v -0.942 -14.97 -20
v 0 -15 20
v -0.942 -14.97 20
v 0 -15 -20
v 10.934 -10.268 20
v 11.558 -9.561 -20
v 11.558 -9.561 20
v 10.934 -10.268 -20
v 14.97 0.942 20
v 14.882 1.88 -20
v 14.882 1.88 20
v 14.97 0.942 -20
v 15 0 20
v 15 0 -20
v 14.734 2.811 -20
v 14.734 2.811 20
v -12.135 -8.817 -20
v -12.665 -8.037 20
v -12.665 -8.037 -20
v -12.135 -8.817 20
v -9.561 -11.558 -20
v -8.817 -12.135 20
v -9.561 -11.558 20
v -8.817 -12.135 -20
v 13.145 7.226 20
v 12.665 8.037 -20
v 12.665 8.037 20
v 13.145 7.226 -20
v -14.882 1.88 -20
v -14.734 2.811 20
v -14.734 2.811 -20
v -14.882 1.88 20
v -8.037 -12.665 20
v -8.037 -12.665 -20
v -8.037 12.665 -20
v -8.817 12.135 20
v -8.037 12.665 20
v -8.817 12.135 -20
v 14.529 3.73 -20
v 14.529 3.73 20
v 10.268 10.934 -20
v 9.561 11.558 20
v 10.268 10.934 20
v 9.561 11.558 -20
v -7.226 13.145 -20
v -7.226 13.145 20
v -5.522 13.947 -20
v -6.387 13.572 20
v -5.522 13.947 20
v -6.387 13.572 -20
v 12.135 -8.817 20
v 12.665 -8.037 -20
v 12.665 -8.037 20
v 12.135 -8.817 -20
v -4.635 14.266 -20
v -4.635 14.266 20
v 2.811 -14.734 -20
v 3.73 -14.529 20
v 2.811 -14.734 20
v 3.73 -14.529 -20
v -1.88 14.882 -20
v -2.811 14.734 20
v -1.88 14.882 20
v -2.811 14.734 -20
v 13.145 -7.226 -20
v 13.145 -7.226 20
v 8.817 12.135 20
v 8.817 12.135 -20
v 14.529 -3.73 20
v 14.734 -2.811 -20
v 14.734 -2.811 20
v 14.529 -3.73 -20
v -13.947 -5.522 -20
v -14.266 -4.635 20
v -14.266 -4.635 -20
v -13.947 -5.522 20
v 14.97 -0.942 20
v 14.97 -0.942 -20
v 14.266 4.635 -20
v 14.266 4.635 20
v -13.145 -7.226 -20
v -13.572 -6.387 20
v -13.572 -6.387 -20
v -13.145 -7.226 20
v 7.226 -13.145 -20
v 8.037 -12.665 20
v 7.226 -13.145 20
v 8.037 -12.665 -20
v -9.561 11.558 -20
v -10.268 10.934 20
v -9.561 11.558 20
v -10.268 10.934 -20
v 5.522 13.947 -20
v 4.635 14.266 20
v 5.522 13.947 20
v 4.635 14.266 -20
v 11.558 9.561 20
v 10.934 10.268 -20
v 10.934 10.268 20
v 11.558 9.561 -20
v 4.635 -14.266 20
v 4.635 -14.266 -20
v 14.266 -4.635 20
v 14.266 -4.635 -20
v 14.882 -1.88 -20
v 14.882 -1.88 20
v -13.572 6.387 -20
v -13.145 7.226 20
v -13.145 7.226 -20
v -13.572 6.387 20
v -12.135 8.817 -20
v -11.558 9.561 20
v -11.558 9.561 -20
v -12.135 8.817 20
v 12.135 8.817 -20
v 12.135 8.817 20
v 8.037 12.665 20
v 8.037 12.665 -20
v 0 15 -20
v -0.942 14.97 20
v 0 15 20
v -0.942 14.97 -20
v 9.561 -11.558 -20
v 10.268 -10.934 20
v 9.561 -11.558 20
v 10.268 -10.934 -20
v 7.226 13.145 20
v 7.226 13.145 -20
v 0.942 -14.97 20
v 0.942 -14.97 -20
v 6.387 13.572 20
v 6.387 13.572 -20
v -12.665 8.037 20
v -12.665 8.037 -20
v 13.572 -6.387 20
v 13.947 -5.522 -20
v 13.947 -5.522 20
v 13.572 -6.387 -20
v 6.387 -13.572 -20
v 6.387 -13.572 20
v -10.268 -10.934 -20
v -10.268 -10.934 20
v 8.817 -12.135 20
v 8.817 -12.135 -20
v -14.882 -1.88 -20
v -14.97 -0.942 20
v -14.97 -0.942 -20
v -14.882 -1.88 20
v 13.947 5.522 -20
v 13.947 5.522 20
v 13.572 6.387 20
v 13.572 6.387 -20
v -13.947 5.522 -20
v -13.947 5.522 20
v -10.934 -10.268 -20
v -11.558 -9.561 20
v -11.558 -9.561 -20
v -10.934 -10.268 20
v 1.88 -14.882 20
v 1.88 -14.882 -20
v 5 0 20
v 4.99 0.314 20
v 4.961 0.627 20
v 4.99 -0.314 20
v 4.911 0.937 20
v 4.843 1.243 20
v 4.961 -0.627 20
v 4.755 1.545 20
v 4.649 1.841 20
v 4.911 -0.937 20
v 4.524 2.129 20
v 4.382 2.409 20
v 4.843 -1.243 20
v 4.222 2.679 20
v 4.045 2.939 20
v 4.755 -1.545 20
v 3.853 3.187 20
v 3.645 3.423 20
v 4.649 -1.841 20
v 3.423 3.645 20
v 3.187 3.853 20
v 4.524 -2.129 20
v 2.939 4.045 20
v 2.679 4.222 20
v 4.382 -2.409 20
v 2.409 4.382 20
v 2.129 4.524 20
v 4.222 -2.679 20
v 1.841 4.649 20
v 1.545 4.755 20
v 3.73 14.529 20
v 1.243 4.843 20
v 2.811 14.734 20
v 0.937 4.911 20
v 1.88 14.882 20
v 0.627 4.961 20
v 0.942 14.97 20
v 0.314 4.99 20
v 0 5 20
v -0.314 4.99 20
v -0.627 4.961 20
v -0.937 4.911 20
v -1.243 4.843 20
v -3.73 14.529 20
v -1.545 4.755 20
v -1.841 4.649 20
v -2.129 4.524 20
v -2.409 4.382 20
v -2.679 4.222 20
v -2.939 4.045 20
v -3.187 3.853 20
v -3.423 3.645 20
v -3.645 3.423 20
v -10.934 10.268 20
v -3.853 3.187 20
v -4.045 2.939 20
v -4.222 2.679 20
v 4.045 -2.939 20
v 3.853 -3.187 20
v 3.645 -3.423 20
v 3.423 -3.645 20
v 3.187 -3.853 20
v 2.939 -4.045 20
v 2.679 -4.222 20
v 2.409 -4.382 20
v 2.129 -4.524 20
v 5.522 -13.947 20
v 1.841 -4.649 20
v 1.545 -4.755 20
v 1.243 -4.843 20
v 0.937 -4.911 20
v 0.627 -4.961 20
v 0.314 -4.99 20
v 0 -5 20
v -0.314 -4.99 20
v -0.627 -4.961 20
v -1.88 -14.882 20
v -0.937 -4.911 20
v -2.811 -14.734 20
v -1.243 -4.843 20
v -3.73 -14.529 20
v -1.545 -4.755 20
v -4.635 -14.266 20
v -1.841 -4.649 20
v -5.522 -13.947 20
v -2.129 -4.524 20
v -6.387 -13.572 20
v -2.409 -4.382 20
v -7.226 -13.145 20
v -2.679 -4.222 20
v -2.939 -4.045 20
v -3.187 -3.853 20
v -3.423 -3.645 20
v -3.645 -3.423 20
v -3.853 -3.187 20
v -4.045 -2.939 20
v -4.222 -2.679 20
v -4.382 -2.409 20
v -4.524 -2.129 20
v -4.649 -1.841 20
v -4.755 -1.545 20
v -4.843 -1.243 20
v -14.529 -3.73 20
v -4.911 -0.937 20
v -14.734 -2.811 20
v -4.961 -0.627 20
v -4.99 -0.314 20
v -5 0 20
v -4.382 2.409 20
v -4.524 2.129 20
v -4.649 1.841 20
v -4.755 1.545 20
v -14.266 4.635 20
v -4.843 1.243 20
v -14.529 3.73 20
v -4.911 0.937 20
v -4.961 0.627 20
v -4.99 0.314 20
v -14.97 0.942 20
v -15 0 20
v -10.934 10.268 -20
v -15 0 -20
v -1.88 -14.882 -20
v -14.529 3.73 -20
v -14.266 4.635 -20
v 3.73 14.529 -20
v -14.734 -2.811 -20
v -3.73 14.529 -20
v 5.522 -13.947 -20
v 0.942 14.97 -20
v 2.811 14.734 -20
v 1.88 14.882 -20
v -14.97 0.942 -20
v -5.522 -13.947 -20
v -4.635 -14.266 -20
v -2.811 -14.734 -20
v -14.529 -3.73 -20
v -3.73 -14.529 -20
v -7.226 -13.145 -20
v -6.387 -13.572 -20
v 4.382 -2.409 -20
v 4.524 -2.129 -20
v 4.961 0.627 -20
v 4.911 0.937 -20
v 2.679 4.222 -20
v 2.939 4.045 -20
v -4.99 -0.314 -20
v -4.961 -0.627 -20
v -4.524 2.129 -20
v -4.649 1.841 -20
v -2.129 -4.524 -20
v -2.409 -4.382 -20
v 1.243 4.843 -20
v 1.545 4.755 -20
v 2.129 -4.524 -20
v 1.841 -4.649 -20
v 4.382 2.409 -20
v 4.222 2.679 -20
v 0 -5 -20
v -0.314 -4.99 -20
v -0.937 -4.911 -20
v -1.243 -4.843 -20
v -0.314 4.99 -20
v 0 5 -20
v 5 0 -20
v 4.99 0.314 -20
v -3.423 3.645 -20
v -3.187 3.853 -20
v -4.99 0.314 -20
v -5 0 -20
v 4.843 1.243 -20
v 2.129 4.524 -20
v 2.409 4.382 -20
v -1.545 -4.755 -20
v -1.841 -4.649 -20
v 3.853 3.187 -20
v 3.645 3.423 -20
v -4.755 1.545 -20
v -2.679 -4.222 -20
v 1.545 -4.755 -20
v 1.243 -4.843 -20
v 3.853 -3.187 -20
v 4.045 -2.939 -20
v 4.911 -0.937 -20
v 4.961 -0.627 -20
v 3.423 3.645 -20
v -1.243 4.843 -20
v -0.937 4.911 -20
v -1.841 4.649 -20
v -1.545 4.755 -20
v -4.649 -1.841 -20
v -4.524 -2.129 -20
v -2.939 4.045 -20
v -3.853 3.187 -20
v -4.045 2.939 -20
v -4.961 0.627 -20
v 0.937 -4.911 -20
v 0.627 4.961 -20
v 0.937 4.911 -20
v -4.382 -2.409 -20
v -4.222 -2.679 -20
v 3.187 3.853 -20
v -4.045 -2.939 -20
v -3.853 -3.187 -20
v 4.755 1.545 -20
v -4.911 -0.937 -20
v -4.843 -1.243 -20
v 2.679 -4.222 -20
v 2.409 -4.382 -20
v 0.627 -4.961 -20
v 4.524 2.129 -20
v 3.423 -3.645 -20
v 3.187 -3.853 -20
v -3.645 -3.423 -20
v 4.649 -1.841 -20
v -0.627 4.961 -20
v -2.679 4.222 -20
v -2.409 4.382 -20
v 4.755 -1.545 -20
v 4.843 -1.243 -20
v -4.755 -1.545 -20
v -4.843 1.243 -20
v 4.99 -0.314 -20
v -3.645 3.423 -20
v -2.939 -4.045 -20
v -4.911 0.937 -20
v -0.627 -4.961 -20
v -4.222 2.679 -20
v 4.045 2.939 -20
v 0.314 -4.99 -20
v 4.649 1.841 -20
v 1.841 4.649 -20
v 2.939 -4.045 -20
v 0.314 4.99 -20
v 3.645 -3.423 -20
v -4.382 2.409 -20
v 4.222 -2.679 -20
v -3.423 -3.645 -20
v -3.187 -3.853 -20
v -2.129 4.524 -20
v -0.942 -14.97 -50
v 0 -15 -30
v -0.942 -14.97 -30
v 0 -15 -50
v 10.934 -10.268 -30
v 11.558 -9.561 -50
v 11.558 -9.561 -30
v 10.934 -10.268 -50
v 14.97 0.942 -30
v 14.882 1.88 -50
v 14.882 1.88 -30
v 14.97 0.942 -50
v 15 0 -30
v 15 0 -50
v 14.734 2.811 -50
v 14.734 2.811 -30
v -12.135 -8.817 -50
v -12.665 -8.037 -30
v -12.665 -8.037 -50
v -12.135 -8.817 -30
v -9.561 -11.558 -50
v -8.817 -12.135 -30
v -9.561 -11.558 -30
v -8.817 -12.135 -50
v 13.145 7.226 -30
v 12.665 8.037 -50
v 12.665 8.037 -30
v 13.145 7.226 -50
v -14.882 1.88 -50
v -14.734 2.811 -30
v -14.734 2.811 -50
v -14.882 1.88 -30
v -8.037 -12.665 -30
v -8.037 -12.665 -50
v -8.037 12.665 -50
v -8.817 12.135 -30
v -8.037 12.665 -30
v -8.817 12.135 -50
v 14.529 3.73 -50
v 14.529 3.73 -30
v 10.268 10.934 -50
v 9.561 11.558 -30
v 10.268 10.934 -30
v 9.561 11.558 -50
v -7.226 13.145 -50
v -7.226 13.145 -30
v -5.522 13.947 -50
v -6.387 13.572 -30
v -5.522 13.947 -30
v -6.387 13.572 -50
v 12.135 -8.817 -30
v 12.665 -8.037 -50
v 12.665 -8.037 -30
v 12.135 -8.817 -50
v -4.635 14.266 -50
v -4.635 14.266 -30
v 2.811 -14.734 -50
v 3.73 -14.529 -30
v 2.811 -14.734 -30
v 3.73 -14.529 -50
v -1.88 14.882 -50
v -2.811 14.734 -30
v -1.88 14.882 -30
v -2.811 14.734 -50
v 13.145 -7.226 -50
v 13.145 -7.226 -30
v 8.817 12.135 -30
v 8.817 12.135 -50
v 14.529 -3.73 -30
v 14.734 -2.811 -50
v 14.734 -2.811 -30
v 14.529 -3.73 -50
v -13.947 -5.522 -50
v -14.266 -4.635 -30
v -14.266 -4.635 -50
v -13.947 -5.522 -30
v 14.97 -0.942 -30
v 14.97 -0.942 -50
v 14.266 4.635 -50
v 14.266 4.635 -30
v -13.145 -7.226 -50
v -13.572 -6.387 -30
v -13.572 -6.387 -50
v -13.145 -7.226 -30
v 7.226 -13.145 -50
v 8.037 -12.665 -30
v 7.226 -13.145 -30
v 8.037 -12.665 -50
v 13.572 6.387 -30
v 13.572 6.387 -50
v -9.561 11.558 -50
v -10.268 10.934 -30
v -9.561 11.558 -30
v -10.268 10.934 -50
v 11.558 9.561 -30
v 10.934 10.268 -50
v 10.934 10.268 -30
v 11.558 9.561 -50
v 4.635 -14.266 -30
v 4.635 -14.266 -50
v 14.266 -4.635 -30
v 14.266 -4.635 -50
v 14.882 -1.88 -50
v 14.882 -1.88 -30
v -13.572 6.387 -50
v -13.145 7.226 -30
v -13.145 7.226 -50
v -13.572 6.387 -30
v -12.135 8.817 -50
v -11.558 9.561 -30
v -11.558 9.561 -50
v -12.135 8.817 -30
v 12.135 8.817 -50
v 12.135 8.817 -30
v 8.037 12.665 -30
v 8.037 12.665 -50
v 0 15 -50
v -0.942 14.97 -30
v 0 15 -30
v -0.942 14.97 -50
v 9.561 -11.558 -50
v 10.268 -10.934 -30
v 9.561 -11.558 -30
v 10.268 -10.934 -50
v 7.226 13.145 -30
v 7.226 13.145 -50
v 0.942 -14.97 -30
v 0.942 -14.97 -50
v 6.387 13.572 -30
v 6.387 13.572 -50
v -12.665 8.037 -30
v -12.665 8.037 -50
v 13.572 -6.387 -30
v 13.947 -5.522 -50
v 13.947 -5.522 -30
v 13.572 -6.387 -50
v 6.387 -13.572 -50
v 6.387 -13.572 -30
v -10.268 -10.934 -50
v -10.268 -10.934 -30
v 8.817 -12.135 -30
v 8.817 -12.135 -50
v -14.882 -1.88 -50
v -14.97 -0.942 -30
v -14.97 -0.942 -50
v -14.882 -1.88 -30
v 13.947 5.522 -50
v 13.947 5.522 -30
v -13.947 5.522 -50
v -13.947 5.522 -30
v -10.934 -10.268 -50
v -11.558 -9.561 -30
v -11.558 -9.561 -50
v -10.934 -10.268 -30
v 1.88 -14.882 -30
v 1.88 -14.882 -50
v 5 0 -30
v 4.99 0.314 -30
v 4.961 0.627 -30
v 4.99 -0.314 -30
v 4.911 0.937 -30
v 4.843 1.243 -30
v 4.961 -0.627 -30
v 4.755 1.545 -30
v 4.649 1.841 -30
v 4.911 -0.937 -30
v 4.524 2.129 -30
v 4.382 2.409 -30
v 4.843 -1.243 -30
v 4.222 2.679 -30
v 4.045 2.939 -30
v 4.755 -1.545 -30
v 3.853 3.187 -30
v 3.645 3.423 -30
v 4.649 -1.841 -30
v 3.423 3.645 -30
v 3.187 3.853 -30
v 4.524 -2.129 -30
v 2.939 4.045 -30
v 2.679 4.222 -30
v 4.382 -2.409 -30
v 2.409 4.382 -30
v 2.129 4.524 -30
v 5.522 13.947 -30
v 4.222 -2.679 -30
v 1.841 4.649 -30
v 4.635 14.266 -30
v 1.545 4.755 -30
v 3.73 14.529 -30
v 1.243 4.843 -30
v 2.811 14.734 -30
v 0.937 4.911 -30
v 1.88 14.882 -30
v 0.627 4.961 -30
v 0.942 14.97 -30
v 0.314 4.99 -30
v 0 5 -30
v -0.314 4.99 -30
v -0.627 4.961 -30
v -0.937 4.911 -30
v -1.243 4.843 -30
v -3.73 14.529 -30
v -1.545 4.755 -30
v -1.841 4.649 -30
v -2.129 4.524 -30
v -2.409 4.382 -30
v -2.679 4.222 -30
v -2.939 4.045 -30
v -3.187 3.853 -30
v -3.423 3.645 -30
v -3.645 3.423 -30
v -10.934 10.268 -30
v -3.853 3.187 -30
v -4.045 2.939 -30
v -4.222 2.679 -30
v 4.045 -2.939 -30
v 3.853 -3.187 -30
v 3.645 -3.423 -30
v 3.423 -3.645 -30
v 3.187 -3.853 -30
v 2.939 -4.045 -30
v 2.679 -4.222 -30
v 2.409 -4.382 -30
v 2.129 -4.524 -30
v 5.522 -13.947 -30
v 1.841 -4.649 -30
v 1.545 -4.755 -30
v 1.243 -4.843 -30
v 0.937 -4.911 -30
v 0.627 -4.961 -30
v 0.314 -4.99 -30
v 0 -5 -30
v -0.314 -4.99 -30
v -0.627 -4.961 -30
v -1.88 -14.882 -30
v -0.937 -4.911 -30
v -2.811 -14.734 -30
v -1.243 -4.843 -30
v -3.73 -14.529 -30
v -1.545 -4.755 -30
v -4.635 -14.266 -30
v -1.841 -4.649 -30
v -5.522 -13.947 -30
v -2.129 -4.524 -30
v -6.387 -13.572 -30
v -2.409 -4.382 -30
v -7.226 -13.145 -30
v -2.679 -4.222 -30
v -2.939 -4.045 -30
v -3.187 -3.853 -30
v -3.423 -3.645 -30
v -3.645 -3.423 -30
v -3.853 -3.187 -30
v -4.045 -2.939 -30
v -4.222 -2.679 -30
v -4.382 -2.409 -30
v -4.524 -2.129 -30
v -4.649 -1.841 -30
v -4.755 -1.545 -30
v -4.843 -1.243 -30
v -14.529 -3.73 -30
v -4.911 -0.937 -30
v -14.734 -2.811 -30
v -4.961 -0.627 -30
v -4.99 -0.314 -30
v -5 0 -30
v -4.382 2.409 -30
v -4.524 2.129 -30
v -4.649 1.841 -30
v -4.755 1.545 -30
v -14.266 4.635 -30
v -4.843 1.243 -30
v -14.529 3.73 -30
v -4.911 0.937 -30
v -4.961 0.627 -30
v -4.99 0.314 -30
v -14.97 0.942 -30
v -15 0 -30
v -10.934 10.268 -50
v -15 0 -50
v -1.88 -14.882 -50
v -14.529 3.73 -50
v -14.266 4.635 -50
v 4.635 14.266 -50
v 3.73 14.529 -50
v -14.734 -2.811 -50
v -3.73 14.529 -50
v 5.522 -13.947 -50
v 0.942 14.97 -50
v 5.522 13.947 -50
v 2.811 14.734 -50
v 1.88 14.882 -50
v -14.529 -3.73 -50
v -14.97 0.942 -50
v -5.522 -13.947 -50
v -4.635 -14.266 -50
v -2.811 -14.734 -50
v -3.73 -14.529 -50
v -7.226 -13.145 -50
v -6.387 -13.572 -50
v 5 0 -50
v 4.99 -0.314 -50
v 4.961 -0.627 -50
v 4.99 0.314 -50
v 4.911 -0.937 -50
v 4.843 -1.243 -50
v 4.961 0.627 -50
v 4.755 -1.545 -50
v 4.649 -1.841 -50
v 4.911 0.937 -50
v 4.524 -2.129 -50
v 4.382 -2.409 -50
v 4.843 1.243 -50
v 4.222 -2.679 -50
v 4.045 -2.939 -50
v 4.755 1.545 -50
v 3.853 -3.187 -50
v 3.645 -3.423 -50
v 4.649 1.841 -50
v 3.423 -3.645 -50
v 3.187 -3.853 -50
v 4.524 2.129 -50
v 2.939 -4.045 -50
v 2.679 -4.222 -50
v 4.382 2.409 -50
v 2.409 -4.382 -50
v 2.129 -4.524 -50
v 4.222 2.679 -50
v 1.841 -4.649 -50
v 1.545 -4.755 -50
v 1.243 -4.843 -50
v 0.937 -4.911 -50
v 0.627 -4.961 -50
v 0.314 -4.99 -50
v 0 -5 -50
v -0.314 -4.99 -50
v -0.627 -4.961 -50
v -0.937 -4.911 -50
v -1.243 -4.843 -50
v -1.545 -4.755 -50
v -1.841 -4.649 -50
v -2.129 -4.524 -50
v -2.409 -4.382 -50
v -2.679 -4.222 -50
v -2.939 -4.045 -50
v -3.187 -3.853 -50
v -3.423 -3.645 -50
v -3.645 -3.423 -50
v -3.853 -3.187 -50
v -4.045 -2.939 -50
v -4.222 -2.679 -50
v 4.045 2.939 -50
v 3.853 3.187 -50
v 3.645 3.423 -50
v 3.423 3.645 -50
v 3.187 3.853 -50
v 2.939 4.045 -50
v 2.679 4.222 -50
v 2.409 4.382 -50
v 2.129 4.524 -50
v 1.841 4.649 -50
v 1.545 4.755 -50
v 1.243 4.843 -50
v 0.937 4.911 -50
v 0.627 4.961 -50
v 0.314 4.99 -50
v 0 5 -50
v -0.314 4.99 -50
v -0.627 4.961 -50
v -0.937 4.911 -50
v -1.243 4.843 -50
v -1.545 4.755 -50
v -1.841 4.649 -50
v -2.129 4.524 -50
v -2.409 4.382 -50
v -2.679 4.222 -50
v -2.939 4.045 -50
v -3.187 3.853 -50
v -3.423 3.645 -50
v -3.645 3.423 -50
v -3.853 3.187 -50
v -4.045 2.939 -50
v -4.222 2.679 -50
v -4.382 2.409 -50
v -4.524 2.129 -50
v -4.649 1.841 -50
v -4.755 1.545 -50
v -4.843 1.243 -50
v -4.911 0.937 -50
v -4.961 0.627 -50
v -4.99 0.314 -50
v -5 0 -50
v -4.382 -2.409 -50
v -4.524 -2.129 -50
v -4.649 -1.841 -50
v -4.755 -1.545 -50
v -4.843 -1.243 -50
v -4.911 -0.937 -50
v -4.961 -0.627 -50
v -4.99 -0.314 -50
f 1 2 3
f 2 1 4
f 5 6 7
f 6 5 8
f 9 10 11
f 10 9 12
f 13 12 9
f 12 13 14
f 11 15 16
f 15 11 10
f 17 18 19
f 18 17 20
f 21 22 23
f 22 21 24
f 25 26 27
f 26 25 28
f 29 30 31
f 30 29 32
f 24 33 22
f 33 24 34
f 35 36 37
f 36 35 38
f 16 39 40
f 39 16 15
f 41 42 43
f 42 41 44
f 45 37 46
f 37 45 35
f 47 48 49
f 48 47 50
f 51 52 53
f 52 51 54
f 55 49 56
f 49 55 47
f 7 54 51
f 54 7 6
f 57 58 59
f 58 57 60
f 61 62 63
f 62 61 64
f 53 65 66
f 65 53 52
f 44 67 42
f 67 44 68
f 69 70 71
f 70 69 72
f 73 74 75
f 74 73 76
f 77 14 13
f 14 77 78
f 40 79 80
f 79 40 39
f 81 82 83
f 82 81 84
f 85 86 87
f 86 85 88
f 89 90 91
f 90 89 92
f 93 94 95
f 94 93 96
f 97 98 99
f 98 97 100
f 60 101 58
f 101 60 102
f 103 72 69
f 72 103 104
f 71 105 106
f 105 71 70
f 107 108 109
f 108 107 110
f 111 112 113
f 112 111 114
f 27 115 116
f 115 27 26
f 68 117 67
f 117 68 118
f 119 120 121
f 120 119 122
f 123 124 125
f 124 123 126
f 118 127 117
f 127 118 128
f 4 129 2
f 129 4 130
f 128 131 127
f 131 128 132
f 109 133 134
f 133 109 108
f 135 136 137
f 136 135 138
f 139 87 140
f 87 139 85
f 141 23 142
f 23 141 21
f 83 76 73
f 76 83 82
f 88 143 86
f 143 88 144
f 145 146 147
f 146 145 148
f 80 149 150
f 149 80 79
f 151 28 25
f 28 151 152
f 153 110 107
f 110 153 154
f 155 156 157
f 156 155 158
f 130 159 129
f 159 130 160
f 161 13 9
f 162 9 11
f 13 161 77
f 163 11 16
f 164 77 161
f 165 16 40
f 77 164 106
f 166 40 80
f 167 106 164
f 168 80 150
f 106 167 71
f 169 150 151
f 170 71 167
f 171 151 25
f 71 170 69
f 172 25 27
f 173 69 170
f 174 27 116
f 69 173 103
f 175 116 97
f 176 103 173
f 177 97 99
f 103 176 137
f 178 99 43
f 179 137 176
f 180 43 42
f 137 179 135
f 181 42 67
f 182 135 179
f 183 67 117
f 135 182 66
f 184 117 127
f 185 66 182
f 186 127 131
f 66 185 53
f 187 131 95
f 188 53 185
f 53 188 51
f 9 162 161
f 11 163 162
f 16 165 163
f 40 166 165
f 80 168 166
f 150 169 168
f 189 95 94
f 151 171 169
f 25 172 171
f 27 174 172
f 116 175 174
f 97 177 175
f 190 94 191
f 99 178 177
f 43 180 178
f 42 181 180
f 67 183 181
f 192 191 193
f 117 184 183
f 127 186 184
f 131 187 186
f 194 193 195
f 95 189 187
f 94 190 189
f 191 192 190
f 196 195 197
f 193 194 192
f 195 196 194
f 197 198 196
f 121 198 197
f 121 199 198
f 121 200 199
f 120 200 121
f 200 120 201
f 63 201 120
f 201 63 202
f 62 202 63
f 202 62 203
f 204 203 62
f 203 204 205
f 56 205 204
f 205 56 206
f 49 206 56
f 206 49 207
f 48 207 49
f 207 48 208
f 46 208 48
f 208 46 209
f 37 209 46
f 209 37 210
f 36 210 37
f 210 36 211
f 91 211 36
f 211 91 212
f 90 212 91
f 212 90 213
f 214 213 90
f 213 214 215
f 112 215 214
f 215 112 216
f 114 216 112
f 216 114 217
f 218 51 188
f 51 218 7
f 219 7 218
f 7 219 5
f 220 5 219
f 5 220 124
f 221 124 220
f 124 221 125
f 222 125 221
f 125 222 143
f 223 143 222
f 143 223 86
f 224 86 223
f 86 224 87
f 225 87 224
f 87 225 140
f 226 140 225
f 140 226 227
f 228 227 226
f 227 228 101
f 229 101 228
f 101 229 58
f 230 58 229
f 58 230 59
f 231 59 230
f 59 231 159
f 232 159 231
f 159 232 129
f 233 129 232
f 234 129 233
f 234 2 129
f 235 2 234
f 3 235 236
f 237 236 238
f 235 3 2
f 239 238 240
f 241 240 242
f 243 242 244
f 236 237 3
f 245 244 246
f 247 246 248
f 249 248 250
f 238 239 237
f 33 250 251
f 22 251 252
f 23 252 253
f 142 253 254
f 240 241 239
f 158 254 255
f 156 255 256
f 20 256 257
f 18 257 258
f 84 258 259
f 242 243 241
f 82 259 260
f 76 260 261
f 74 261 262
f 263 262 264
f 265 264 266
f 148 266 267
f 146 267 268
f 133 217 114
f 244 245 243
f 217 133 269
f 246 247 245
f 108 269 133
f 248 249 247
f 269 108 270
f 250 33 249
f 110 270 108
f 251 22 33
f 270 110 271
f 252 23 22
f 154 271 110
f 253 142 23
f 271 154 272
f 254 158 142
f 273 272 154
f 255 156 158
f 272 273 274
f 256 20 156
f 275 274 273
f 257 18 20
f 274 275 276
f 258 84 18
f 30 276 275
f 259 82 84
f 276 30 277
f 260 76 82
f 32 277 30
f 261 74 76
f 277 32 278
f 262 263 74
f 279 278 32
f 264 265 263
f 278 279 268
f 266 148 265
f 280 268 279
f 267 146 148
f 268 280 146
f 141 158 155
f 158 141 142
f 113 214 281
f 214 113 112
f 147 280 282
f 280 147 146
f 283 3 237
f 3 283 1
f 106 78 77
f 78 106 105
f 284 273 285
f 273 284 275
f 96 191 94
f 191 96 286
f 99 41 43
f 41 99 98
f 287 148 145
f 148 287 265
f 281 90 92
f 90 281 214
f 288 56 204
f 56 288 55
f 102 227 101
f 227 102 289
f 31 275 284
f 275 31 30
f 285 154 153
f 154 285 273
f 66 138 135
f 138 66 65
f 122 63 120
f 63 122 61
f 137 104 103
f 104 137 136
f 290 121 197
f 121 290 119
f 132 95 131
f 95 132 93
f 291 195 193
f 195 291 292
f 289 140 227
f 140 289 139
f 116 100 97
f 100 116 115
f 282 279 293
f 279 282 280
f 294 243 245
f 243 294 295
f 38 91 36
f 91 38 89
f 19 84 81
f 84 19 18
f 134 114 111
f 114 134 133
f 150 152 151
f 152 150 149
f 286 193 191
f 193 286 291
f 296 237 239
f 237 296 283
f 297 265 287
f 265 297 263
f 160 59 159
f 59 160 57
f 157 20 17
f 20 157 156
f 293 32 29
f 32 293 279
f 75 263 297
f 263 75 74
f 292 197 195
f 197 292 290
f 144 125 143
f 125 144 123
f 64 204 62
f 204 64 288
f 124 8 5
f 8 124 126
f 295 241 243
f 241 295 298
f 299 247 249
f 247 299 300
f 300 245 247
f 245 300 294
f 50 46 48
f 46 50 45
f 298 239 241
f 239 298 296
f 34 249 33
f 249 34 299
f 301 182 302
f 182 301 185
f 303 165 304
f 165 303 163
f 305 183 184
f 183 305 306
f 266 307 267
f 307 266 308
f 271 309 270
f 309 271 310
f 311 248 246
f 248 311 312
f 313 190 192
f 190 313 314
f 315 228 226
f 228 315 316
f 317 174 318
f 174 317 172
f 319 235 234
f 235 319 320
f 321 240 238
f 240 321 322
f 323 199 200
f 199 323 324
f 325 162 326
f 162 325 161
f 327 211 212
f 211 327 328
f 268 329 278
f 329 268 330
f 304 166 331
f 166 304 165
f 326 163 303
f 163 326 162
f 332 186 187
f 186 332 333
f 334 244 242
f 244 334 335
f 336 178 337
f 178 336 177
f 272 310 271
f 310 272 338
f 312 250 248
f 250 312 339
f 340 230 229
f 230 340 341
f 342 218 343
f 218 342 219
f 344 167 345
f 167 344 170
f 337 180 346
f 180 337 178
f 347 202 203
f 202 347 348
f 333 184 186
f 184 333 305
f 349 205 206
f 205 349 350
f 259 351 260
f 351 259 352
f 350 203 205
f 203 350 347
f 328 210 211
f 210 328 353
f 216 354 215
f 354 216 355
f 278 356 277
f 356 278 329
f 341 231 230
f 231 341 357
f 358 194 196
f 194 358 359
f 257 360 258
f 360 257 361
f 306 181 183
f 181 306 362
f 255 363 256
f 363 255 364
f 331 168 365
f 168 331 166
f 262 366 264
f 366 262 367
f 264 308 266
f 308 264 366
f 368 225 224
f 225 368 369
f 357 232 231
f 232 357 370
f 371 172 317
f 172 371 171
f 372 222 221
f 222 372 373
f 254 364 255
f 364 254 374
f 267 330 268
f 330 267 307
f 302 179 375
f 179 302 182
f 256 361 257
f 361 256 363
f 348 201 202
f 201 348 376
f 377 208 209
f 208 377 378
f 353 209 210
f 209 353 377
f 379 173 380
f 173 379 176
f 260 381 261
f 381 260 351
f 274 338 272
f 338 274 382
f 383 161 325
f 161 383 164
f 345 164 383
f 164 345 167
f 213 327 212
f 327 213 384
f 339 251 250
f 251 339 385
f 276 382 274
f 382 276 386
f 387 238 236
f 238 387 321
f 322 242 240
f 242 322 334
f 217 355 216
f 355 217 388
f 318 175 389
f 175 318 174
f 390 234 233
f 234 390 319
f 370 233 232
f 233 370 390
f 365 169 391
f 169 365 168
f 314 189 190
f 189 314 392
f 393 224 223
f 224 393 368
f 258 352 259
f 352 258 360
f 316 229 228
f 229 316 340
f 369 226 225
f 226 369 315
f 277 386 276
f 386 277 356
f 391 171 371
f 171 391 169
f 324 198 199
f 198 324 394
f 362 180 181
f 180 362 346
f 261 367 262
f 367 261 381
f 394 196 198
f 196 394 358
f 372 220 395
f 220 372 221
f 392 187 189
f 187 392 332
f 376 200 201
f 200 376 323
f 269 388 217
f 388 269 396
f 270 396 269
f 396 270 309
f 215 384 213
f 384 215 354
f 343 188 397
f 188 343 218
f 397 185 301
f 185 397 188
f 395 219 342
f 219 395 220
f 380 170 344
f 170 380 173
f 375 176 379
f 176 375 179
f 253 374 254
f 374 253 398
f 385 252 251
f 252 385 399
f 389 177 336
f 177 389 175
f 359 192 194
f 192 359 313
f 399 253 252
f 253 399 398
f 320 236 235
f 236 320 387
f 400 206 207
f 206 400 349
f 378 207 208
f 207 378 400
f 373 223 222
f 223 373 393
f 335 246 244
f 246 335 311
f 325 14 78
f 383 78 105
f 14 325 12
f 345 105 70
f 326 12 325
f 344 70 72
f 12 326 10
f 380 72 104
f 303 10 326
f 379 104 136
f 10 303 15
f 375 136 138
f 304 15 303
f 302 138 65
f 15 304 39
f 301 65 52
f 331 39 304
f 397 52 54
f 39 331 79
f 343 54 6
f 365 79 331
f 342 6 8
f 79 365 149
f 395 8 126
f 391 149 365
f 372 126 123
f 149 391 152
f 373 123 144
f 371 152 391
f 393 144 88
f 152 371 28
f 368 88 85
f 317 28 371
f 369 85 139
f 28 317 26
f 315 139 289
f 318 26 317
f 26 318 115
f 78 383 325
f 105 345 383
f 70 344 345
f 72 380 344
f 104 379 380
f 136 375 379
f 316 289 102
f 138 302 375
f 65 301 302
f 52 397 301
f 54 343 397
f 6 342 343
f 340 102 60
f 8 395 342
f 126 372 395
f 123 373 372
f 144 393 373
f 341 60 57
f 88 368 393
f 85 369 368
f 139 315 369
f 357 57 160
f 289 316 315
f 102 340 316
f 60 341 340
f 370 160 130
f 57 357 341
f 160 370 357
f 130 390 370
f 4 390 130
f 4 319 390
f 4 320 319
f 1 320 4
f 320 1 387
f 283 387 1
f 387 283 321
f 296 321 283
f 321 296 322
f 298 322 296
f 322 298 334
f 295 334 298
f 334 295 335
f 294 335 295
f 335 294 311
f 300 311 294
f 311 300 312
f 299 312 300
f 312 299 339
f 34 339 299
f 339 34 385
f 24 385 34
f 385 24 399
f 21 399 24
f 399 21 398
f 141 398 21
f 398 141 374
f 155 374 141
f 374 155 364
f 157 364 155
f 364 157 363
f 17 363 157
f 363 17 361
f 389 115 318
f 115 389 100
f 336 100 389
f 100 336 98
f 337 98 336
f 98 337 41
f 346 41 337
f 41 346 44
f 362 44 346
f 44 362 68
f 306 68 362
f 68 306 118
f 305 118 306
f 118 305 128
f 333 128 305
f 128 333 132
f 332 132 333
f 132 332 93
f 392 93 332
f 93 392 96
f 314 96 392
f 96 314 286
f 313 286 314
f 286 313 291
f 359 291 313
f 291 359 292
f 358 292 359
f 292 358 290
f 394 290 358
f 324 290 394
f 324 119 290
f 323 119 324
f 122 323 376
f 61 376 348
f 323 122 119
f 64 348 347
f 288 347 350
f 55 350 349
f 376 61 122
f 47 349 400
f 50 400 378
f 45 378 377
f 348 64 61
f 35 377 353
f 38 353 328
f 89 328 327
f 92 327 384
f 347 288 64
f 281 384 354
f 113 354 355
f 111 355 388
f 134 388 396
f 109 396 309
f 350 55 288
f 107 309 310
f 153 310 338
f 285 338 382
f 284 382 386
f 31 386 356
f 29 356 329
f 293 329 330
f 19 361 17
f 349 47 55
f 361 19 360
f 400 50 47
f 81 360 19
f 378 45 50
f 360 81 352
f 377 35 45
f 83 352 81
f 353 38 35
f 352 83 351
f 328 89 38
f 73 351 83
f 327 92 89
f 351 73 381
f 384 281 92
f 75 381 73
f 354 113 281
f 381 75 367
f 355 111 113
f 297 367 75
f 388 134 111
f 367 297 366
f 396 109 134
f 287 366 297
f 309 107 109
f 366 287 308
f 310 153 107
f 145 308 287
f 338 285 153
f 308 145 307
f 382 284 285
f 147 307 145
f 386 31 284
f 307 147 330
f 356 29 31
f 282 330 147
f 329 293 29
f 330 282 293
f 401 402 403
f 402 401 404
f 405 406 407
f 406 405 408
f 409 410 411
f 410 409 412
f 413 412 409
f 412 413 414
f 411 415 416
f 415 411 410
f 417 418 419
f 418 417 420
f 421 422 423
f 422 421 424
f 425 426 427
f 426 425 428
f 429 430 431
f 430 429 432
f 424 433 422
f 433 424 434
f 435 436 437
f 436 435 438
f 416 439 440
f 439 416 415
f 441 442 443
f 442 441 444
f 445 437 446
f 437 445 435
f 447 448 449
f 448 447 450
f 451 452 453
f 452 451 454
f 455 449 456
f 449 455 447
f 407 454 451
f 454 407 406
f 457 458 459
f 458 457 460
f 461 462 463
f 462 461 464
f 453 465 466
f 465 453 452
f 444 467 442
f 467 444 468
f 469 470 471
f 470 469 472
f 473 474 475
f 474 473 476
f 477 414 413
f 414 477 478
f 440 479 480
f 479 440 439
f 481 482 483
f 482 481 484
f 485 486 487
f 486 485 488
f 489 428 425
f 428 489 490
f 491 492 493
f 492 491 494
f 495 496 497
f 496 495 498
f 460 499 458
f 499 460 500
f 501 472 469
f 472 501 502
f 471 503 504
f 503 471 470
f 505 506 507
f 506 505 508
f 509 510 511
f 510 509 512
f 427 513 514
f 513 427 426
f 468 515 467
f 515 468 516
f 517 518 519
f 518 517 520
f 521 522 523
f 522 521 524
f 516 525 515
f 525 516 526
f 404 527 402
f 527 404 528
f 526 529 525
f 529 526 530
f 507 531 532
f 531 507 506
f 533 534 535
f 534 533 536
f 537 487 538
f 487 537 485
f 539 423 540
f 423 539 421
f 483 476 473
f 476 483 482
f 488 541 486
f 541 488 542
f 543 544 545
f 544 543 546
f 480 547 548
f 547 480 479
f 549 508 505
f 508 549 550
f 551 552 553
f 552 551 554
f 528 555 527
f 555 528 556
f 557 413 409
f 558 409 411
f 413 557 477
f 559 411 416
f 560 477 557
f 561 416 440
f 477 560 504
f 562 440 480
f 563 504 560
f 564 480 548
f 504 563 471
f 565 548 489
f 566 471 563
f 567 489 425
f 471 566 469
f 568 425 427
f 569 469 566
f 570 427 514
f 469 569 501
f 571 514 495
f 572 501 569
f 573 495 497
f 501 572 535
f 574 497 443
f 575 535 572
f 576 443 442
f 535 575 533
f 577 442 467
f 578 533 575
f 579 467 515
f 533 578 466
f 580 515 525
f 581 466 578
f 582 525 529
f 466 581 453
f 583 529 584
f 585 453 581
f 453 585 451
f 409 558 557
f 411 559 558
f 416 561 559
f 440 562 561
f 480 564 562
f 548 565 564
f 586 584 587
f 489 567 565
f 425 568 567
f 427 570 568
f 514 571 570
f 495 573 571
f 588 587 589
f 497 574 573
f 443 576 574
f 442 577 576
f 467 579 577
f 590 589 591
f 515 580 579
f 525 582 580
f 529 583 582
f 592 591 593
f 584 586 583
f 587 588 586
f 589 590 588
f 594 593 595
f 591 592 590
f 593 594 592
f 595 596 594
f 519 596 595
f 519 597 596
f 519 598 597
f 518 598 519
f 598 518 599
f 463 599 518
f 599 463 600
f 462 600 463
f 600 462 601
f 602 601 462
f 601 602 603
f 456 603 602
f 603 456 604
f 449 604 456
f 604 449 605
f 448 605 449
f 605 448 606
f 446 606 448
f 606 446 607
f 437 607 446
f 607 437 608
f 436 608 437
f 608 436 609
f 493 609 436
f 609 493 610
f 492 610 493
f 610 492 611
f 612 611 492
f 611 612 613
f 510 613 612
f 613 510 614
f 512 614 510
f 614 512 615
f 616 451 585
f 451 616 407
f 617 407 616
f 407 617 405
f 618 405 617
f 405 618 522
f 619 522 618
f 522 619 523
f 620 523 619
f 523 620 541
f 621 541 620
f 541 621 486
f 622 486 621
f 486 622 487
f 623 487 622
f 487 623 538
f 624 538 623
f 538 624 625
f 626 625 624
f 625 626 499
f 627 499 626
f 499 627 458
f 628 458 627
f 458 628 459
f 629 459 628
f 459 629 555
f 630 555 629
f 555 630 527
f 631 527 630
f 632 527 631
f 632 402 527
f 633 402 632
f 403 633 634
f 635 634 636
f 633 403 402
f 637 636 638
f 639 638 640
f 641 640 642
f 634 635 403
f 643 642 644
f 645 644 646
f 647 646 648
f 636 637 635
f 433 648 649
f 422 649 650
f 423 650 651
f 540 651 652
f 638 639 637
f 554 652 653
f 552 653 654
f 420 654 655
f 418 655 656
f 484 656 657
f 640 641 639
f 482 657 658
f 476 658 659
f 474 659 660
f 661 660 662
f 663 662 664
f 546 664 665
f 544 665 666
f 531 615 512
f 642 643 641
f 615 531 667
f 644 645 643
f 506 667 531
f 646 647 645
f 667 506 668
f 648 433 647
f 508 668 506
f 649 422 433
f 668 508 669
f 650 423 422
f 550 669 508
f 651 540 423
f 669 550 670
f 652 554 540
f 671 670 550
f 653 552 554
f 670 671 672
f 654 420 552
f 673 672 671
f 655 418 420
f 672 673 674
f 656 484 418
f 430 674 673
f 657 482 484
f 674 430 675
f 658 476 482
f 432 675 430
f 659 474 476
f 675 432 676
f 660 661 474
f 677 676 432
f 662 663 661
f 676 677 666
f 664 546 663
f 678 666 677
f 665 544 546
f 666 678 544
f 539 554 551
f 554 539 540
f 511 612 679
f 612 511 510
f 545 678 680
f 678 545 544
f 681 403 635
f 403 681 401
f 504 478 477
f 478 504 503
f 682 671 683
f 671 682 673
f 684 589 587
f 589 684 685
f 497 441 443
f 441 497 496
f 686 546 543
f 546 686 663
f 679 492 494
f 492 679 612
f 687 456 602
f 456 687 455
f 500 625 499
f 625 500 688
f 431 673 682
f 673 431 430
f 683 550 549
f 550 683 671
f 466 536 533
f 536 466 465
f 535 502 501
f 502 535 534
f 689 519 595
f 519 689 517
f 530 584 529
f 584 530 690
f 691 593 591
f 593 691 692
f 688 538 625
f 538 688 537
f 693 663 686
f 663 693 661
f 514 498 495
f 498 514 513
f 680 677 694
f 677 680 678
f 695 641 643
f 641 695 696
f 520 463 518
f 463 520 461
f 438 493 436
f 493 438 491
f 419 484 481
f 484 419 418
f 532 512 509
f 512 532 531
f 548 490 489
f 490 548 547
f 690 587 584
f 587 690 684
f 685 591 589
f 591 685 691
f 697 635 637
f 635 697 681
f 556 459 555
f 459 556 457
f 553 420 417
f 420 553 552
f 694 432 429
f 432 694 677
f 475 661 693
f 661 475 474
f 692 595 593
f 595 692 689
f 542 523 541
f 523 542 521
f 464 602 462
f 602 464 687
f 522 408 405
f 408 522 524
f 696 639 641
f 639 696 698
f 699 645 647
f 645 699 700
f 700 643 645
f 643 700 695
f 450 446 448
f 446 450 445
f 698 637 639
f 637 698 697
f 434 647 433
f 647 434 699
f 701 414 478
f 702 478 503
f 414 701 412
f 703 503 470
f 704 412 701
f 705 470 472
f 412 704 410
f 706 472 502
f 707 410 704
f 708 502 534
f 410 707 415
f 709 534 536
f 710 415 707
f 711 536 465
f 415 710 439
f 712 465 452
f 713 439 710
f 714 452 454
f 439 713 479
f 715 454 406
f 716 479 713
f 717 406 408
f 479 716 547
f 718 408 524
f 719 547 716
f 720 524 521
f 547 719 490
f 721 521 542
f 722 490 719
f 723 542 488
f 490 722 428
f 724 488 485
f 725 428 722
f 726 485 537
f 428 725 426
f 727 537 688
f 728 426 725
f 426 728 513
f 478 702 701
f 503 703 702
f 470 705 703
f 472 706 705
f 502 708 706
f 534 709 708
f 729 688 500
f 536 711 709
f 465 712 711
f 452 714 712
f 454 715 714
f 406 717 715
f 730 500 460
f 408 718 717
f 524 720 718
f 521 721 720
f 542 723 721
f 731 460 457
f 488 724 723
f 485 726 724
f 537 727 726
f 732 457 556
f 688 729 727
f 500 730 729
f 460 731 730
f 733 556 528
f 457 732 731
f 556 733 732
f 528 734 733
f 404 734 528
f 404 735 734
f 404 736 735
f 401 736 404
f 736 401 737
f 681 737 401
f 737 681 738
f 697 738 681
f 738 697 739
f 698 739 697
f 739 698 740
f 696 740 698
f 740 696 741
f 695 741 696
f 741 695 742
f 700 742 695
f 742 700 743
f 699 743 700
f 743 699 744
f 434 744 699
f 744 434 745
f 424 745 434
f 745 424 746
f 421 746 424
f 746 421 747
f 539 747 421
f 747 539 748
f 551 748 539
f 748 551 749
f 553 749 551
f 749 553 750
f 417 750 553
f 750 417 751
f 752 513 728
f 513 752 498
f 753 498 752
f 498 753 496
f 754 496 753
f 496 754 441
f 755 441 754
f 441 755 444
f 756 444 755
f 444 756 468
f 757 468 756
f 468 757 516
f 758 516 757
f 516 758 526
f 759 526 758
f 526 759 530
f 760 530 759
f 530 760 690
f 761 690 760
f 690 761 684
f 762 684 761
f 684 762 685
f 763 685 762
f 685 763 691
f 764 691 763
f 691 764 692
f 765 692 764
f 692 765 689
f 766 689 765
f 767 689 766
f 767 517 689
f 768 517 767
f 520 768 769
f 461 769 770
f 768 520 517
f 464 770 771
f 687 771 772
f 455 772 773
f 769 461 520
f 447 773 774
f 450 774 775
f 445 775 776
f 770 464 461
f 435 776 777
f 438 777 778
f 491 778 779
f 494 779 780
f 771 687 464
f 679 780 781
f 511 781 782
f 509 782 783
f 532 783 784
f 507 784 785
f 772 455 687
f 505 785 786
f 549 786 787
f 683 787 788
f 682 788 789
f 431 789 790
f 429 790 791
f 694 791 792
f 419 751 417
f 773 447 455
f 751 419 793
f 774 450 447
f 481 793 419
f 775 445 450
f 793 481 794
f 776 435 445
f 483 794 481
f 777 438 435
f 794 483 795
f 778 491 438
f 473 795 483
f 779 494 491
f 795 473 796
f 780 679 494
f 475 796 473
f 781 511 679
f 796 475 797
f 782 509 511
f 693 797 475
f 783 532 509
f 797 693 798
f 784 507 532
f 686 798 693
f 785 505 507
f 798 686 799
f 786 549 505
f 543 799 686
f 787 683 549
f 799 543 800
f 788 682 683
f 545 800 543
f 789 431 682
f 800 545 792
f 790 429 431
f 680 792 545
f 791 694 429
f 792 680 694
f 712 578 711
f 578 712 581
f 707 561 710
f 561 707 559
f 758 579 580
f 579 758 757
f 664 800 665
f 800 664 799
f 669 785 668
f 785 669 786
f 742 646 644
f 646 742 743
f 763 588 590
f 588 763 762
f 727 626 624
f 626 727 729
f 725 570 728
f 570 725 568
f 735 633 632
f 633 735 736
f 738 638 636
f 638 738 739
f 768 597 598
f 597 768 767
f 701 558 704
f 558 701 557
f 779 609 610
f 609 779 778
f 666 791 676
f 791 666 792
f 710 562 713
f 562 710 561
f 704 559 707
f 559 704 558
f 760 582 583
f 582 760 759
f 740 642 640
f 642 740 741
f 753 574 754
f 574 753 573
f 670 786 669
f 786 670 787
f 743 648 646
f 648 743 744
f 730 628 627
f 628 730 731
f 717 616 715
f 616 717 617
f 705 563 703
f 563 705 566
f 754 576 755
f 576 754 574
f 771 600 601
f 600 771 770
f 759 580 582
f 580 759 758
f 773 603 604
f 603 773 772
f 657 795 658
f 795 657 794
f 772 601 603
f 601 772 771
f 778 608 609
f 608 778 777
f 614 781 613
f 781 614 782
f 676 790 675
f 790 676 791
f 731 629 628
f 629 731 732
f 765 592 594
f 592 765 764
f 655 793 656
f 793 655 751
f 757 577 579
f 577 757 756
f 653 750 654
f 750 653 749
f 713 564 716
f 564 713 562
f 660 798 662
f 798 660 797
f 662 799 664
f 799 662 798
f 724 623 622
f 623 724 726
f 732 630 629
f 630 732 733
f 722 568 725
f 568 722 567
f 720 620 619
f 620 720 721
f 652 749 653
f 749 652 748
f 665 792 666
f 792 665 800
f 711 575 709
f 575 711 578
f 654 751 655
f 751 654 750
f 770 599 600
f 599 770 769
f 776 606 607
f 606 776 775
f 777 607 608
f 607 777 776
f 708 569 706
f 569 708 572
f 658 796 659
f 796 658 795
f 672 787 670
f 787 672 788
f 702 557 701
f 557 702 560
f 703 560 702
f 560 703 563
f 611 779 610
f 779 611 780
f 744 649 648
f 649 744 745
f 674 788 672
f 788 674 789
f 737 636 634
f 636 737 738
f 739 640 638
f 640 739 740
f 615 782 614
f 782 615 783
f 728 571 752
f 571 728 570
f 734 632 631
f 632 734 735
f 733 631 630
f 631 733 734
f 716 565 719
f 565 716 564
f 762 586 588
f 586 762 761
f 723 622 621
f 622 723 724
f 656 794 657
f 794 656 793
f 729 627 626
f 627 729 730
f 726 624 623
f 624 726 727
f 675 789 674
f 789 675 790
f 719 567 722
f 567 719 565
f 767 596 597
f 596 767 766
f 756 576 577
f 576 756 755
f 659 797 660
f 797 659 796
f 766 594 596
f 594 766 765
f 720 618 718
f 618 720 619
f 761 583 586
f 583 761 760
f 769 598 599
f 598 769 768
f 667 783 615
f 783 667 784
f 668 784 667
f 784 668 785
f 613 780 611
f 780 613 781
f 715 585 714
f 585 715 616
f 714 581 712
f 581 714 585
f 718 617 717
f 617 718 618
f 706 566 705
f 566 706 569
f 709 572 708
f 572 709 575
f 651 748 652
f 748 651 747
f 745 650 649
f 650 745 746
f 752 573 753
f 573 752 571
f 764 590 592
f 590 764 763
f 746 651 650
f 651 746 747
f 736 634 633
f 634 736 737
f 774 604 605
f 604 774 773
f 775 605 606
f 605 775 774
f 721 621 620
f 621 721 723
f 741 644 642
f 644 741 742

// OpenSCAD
// Parameters for components
module central_cylinder() {
    difference() {
        cylinder(h = 30, r = 15, $fn = 100); // Main cylinder
        translate([0, 0, -1]) cylinder(h = 32, r = 5, $fn = 100); // Central bore
    }
}

module input_cylinder() {
    difference() {
        cylinder(h = 20, r = 15, $fn = 100); // Main cylinder
        translate([0, 0, -1]) cylinder(h = 22, r = 5, $fn = 100); // Central bore
    }
}

module output_cylinder() {
    difference() {
        cylinder(h = 20, r = 15, $fn = 100); // Main cylinder
        translate([0, 0, -1]) cylinder(h = 22, r = 5, $fn = 100); // Central bore
    }
}

module spacer_ring() {
    difference() {
        cylinder(h = 5, r = 15, $fn = 100); // Outer ring
        translate([0, 0, -1]) cylinder(h = 7, r = 10, $fn = 100); // Inner cutout
    }
}

module flange_plate() {
    difference() {
        cylinder(h = 5, r = 15, $fn = 100); // Outer ring
        translate([0, 0, -1]) cylinder(h = 7, r = 10, $fn = 100); // Inner cutout
        for (angle = [0:90:270]) {
            translate([12 * cos(angle), 12 * sin(angle), -1])
                cylinder(h = 7, r = 2, $fn = 50); // Bolt holes
        }
    }
}

module nut() {
    cylinder(h = 5, r = 3, $fn = 6); // Hexagonal nut
}

module bolt() {
    union() {
        cylinder(h = 20, r = 2, $fn = 50); // Bolt shaft
        translate([0, 0, 20]) cylinder(h = 2, r = 3, $fn = 50); // Bolt head
    }
}

// Assembly
module assembly() {
    translate([0, 0, 0]) input_cylinder(); // Layer 1
    translate([0, 0, -5]) flange_plate(); // Layer 2
    translate([0, 0, -10]) spacer_ring(); // Layer 3
    translate([0, 0, -15]) flange_plate(); // Layer 4
    translate([0, 0, -20]) central_cylinder(); // Layer 5
    translate([0, 0, -35]) flange_plate(); // Layer 6
    translate([0, 0, -40]) spacer_ring(); // Layer 7
    translate([0, 0, -45]) flange_plate(); // Layer 8
    translate([0, 0, -50]) output_cylinder(); // Layer 9

    // Bolts and nuts
    for (angle = [0:90:270]) {
        translate([12 * cos(angle), 12 * sin(angle), -5])
            bolt(); // Bolts in flange plates
        translate([12 * cos(angle), 12 * sin(angle), -7])
            nut(); // Nuts securing bolts
    }
}

// Render the assembly
assembly();
